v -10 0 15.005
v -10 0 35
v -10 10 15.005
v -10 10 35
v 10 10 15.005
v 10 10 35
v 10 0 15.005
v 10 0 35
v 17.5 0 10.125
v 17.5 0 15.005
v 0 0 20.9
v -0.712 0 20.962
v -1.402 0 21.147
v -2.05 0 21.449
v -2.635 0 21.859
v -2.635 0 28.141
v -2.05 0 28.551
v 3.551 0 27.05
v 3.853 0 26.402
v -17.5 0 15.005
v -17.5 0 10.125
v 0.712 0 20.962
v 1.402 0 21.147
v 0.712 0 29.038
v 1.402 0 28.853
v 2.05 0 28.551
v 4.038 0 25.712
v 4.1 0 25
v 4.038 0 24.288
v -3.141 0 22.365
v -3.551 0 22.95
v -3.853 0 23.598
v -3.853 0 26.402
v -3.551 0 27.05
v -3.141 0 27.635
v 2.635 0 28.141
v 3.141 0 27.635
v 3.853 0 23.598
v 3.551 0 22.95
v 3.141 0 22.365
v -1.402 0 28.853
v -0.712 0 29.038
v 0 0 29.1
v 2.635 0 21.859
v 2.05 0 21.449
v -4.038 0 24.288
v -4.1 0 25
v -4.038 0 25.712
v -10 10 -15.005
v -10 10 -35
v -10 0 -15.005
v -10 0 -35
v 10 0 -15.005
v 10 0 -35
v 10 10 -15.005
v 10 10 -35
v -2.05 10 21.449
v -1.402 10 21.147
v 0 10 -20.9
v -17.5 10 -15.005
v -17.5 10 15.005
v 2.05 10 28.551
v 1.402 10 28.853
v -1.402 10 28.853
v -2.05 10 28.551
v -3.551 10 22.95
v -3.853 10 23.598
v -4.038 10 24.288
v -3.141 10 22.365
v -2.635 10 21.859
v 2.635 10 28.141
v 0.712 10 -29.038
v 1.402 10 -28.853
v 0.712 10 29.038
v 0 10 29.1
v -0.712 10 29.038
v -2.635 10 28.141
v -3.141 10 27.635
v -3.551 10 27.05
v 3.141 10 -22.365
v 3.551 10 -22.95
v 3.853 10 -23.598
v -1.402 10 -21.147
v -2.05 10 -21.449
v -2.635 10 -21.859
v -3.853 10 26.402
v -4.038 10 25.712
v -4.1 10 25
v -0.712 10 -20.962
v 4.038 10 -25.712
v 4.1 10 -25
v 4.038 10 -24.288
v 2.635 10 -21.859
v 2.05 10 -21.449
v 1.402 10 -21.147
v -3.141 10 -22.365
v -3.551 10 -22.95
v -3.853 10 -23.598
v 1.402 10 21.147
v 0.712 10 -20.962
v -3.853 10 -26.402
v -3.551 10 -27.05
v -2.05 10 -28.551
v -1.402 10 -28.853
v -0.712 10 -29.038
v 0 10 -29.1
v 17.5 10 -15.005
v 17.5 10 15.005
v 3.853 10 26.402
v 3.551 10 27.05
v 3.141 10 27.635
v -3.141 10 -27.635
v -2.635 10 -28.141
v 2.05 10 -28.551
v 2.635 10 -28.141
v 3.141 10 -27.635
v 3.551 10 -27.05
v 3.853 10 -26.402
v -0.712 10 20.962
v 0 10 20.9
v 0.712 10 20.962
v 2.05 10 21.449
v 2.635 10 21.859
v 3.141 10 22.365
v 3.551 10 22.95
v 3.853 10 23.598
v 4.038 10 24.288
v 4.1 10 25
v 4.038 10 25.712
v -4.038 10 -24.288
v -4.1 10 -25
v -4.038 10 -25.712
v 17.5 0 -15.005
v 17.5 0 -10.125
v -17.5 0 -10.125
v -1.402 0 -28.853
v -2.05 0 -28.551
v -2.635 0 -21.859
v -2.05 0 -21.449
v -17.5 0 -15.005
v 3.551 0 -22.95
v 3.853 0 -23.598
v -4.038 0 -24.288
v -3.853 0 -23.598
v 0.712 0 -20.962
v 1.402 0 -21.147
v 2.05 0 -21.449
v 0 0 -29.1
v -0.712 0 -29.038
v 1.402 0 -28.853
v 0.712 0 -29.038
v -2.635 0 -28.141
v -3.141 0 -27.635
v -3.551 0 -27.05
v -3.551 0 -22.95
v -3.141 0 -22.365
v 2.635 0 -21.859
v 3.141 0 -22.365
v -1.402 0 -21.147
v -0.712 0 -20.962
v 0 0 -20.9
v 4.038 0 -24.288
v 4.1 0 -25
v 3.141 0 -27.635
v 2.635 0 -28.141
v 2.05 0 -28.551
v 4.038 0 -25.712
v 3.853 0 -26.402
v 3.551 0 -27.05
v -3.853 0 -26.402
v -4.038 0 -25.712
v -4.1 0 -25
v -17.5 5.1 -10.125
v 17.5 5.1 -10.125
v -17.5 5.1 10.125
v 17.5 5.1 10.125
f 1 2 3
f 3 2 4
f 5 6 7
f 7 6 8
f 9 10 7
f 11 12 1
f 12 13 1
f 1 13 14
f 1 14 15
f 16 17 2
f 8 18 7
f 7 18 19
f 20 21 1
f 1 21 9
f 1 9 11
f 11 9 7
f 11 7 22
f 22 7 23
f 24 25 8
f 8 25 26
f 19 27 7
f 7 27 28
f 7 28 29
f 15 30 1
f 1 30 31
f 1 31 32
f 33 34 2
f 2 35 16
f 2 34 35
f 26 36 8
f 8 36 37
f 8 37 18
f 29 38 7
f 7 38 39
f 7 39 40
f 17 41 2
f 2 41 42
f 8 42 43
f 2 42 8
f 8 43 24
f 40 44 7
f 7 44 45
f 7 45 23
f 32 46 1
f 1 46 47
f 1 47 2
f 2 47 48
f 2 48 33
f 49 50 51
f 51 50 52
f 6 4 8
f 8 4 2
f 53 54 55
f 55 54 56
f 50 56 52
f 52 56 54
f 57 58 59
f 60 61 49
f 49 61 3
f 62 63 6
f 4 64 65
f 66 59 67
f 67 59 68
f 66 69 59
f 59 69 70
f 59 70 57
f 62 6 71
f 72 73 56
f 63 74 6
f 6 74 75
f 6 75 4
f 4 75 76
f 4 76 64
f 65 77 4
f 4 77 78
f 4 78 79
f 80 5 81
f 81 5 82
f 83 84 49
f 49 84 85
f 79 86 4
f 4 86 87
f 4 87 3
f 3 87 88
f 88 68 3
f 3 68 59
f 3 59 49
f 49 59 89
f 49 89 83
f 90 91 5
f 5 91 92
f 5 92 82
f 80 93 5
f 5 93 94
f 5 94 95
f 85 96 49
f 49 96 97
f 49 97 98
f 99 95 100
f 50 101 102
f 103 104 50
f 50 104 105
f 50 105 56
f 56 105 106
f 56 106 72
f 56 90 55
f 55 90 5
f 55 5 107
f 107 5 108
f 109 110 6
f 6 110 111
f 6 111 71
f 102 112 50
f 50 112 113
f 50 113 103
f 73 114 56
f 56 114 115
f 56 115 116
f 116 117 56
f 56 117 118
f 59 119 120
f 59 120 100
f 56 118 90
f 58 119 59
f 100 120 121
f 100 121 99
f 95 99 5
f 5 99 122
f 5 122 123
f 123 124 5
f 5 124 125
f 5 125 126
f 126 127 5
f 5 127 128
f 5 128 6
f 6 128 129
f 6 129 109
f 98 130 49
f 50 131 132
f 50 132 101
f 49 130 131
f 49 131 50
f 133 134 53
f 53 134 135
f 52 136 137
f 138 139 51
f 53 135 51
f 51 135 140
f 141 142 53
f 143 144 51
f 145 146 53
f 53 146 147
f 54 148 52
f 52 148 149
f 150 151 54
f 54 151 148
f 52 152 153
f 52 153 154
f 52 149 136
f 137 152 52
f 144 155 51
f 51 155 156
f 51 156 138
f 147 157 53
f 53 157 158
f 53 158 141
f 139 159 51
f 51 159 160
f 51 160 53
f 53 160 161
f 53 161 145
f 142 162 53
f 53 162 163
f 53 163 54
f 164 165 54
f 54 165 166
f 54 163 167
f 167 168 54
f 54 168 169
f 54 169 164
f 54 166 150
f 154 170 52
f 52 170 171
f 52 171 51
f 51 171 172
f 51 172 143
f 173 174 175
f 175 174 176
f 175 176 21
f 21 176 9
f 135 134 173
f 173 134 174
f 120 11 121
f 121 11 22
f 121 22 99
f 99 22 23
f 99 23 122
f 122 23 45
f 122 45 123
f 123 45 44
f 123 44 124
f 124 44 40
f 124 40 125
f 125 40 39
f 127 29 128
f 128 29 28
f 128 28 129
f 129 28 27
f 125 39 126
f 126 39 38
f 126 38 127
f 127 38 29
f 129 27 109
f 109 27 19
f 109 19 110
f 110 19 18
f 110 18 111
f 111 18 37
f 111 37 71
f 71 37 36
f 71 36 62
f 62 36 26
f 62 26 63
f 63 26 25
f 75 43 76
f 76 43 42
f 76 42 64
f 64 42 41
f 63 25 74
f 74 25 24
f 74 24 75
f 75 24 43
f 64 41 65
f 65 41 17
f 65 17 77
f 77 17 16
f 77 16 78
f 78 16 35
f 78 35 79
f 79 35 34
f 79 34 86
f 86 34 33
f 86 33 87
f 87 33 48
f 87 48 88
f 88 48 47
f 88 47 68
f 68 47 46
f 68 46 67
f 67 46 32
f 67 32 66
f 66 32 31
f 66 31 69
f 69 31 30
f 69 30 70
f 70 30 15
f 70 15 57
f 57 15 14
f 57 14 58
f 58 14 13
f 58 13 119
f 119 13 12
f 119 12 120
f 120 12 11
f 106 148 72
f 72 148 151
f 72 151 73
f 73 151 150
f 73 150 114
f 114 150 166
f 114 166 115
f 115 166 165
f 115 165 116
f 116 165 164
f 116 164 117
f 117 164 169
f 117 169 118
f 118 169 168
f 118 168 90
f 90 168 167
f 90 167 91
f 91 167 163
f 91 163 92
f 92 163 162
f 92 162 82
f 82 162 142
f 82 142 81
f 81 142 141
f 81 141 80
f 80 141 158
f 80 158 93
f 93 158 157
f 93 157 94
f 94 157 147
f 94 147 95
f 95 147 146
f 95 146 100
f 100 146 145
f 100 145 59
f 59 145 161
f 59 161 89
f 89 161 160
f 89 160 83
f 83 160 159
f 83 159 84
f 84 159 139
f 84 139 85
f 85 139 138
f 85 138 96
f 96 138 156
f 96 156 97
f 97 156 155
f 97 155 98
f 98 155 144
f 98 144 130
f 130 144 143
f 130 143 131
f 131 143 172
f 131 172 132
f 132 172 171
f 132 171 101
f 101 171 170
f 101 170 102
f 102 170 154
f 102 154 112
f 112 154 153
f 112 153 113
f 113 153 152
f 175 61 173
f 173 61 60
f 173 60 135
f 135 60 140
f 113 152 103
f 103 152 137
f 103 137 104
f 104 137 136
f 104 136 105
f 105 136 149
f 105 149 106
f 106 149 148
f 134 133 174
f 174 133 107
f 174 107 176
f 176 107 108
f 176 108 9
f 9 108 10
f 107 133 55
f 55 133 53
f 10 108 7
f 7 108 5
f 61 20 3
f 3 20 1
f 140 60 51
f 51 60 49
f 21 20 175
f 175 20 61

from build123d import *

# Parameters (mm, degrees)
SKETCH1_W                = 20
SKETCH1_H                = 70
BOSS_EXTRUDE1_DEPTH      = 10
CUT_EXTRUDE1_DEPTH       = 42.533119315
CUT_EXTRUDE1_DEPTH_BACK  = 42.533119315
SKETCH2_W                = 20.25
SKETCH2_H                = 5.1
SKETCH3_R                = 4.1
CUT_EXTRUDE2_DEPTH       = 38.749172176
BOSS_EXTRUDE2_DEPTH      = 7.5
BOSS_EXTRUDE2_DEPTH_BACK = 27.5


with BuildPart() as part:
    # Sketch1 → Boss-Extrude1 (new body)
    with BuildSketch(Plane(origin=(0, 0, 0), x_dir=(1, 0, 0), z_dir=(0, 1, 0))):
        Rectangle(SKETCH1_W, SKETCH1_H)
    extrude(amount=BOSS_EXTRUDE1_DEPTH)

    # Sketch2 → Cut-Extrude1 (cut, two sides: drawn at the far end of the back side and taken through both)
    with BuildSketch(Plane(origin=(10, 0, 0), x_dir=(0, 0, -1), z_dir=(1, 0, 0)).offset(-CUT_EXTRUDE1_DEPTH_BACK)):
        with Locations((0, 2.55)):
            Rectangle(SKETCH2_W, SKETCH2_H)
    extrude(amount=CUT_EXTRUDE1_DEPTH + CUT_EXTRUDE1_DEPTH_BACK, mode=Mode.SUBTRACT)

    # Sketch3 → Cut-Extrude2 (cut, through all)
    with BuildSketch(Plane.XZ):
        with Locations(Location((0, 25, 0), (0, 0, 270))):
            Circle(SKETCH3_R)
        with Locations(Location((0, -25, 0), (0, 0, 270))):
            Circle(SKETCH3_R)
    extrude(amount=-CUT_EXTRUDE2_DEPTH, mode=Mode.SUBTRACT)

    # Sketch4 → Boss-Extrude2 (add, two sides: drawn at the far end of the back side and taken through both)
    with BuildSketch(Plane(origin=(10, 0, 0), x_dir=(0, 0, -1), z_dir=(1, 0, 0)).offset(-BOSS_EXTRUDE2_DEPTH_BACK)):
        Polygon((-10.125, 0), (-15.005, 0), (-15.005, 10), (15.005, 10), (15.005, 0), (10.125, 0), (10.125, 5.1), (-10.125, 5.1), align=None)
    extrude(amount=BOSS_EXTRUDE2_DEPTH + BOSS_EXTRUDE2_DEPTH_BACK)


solid = part.part
